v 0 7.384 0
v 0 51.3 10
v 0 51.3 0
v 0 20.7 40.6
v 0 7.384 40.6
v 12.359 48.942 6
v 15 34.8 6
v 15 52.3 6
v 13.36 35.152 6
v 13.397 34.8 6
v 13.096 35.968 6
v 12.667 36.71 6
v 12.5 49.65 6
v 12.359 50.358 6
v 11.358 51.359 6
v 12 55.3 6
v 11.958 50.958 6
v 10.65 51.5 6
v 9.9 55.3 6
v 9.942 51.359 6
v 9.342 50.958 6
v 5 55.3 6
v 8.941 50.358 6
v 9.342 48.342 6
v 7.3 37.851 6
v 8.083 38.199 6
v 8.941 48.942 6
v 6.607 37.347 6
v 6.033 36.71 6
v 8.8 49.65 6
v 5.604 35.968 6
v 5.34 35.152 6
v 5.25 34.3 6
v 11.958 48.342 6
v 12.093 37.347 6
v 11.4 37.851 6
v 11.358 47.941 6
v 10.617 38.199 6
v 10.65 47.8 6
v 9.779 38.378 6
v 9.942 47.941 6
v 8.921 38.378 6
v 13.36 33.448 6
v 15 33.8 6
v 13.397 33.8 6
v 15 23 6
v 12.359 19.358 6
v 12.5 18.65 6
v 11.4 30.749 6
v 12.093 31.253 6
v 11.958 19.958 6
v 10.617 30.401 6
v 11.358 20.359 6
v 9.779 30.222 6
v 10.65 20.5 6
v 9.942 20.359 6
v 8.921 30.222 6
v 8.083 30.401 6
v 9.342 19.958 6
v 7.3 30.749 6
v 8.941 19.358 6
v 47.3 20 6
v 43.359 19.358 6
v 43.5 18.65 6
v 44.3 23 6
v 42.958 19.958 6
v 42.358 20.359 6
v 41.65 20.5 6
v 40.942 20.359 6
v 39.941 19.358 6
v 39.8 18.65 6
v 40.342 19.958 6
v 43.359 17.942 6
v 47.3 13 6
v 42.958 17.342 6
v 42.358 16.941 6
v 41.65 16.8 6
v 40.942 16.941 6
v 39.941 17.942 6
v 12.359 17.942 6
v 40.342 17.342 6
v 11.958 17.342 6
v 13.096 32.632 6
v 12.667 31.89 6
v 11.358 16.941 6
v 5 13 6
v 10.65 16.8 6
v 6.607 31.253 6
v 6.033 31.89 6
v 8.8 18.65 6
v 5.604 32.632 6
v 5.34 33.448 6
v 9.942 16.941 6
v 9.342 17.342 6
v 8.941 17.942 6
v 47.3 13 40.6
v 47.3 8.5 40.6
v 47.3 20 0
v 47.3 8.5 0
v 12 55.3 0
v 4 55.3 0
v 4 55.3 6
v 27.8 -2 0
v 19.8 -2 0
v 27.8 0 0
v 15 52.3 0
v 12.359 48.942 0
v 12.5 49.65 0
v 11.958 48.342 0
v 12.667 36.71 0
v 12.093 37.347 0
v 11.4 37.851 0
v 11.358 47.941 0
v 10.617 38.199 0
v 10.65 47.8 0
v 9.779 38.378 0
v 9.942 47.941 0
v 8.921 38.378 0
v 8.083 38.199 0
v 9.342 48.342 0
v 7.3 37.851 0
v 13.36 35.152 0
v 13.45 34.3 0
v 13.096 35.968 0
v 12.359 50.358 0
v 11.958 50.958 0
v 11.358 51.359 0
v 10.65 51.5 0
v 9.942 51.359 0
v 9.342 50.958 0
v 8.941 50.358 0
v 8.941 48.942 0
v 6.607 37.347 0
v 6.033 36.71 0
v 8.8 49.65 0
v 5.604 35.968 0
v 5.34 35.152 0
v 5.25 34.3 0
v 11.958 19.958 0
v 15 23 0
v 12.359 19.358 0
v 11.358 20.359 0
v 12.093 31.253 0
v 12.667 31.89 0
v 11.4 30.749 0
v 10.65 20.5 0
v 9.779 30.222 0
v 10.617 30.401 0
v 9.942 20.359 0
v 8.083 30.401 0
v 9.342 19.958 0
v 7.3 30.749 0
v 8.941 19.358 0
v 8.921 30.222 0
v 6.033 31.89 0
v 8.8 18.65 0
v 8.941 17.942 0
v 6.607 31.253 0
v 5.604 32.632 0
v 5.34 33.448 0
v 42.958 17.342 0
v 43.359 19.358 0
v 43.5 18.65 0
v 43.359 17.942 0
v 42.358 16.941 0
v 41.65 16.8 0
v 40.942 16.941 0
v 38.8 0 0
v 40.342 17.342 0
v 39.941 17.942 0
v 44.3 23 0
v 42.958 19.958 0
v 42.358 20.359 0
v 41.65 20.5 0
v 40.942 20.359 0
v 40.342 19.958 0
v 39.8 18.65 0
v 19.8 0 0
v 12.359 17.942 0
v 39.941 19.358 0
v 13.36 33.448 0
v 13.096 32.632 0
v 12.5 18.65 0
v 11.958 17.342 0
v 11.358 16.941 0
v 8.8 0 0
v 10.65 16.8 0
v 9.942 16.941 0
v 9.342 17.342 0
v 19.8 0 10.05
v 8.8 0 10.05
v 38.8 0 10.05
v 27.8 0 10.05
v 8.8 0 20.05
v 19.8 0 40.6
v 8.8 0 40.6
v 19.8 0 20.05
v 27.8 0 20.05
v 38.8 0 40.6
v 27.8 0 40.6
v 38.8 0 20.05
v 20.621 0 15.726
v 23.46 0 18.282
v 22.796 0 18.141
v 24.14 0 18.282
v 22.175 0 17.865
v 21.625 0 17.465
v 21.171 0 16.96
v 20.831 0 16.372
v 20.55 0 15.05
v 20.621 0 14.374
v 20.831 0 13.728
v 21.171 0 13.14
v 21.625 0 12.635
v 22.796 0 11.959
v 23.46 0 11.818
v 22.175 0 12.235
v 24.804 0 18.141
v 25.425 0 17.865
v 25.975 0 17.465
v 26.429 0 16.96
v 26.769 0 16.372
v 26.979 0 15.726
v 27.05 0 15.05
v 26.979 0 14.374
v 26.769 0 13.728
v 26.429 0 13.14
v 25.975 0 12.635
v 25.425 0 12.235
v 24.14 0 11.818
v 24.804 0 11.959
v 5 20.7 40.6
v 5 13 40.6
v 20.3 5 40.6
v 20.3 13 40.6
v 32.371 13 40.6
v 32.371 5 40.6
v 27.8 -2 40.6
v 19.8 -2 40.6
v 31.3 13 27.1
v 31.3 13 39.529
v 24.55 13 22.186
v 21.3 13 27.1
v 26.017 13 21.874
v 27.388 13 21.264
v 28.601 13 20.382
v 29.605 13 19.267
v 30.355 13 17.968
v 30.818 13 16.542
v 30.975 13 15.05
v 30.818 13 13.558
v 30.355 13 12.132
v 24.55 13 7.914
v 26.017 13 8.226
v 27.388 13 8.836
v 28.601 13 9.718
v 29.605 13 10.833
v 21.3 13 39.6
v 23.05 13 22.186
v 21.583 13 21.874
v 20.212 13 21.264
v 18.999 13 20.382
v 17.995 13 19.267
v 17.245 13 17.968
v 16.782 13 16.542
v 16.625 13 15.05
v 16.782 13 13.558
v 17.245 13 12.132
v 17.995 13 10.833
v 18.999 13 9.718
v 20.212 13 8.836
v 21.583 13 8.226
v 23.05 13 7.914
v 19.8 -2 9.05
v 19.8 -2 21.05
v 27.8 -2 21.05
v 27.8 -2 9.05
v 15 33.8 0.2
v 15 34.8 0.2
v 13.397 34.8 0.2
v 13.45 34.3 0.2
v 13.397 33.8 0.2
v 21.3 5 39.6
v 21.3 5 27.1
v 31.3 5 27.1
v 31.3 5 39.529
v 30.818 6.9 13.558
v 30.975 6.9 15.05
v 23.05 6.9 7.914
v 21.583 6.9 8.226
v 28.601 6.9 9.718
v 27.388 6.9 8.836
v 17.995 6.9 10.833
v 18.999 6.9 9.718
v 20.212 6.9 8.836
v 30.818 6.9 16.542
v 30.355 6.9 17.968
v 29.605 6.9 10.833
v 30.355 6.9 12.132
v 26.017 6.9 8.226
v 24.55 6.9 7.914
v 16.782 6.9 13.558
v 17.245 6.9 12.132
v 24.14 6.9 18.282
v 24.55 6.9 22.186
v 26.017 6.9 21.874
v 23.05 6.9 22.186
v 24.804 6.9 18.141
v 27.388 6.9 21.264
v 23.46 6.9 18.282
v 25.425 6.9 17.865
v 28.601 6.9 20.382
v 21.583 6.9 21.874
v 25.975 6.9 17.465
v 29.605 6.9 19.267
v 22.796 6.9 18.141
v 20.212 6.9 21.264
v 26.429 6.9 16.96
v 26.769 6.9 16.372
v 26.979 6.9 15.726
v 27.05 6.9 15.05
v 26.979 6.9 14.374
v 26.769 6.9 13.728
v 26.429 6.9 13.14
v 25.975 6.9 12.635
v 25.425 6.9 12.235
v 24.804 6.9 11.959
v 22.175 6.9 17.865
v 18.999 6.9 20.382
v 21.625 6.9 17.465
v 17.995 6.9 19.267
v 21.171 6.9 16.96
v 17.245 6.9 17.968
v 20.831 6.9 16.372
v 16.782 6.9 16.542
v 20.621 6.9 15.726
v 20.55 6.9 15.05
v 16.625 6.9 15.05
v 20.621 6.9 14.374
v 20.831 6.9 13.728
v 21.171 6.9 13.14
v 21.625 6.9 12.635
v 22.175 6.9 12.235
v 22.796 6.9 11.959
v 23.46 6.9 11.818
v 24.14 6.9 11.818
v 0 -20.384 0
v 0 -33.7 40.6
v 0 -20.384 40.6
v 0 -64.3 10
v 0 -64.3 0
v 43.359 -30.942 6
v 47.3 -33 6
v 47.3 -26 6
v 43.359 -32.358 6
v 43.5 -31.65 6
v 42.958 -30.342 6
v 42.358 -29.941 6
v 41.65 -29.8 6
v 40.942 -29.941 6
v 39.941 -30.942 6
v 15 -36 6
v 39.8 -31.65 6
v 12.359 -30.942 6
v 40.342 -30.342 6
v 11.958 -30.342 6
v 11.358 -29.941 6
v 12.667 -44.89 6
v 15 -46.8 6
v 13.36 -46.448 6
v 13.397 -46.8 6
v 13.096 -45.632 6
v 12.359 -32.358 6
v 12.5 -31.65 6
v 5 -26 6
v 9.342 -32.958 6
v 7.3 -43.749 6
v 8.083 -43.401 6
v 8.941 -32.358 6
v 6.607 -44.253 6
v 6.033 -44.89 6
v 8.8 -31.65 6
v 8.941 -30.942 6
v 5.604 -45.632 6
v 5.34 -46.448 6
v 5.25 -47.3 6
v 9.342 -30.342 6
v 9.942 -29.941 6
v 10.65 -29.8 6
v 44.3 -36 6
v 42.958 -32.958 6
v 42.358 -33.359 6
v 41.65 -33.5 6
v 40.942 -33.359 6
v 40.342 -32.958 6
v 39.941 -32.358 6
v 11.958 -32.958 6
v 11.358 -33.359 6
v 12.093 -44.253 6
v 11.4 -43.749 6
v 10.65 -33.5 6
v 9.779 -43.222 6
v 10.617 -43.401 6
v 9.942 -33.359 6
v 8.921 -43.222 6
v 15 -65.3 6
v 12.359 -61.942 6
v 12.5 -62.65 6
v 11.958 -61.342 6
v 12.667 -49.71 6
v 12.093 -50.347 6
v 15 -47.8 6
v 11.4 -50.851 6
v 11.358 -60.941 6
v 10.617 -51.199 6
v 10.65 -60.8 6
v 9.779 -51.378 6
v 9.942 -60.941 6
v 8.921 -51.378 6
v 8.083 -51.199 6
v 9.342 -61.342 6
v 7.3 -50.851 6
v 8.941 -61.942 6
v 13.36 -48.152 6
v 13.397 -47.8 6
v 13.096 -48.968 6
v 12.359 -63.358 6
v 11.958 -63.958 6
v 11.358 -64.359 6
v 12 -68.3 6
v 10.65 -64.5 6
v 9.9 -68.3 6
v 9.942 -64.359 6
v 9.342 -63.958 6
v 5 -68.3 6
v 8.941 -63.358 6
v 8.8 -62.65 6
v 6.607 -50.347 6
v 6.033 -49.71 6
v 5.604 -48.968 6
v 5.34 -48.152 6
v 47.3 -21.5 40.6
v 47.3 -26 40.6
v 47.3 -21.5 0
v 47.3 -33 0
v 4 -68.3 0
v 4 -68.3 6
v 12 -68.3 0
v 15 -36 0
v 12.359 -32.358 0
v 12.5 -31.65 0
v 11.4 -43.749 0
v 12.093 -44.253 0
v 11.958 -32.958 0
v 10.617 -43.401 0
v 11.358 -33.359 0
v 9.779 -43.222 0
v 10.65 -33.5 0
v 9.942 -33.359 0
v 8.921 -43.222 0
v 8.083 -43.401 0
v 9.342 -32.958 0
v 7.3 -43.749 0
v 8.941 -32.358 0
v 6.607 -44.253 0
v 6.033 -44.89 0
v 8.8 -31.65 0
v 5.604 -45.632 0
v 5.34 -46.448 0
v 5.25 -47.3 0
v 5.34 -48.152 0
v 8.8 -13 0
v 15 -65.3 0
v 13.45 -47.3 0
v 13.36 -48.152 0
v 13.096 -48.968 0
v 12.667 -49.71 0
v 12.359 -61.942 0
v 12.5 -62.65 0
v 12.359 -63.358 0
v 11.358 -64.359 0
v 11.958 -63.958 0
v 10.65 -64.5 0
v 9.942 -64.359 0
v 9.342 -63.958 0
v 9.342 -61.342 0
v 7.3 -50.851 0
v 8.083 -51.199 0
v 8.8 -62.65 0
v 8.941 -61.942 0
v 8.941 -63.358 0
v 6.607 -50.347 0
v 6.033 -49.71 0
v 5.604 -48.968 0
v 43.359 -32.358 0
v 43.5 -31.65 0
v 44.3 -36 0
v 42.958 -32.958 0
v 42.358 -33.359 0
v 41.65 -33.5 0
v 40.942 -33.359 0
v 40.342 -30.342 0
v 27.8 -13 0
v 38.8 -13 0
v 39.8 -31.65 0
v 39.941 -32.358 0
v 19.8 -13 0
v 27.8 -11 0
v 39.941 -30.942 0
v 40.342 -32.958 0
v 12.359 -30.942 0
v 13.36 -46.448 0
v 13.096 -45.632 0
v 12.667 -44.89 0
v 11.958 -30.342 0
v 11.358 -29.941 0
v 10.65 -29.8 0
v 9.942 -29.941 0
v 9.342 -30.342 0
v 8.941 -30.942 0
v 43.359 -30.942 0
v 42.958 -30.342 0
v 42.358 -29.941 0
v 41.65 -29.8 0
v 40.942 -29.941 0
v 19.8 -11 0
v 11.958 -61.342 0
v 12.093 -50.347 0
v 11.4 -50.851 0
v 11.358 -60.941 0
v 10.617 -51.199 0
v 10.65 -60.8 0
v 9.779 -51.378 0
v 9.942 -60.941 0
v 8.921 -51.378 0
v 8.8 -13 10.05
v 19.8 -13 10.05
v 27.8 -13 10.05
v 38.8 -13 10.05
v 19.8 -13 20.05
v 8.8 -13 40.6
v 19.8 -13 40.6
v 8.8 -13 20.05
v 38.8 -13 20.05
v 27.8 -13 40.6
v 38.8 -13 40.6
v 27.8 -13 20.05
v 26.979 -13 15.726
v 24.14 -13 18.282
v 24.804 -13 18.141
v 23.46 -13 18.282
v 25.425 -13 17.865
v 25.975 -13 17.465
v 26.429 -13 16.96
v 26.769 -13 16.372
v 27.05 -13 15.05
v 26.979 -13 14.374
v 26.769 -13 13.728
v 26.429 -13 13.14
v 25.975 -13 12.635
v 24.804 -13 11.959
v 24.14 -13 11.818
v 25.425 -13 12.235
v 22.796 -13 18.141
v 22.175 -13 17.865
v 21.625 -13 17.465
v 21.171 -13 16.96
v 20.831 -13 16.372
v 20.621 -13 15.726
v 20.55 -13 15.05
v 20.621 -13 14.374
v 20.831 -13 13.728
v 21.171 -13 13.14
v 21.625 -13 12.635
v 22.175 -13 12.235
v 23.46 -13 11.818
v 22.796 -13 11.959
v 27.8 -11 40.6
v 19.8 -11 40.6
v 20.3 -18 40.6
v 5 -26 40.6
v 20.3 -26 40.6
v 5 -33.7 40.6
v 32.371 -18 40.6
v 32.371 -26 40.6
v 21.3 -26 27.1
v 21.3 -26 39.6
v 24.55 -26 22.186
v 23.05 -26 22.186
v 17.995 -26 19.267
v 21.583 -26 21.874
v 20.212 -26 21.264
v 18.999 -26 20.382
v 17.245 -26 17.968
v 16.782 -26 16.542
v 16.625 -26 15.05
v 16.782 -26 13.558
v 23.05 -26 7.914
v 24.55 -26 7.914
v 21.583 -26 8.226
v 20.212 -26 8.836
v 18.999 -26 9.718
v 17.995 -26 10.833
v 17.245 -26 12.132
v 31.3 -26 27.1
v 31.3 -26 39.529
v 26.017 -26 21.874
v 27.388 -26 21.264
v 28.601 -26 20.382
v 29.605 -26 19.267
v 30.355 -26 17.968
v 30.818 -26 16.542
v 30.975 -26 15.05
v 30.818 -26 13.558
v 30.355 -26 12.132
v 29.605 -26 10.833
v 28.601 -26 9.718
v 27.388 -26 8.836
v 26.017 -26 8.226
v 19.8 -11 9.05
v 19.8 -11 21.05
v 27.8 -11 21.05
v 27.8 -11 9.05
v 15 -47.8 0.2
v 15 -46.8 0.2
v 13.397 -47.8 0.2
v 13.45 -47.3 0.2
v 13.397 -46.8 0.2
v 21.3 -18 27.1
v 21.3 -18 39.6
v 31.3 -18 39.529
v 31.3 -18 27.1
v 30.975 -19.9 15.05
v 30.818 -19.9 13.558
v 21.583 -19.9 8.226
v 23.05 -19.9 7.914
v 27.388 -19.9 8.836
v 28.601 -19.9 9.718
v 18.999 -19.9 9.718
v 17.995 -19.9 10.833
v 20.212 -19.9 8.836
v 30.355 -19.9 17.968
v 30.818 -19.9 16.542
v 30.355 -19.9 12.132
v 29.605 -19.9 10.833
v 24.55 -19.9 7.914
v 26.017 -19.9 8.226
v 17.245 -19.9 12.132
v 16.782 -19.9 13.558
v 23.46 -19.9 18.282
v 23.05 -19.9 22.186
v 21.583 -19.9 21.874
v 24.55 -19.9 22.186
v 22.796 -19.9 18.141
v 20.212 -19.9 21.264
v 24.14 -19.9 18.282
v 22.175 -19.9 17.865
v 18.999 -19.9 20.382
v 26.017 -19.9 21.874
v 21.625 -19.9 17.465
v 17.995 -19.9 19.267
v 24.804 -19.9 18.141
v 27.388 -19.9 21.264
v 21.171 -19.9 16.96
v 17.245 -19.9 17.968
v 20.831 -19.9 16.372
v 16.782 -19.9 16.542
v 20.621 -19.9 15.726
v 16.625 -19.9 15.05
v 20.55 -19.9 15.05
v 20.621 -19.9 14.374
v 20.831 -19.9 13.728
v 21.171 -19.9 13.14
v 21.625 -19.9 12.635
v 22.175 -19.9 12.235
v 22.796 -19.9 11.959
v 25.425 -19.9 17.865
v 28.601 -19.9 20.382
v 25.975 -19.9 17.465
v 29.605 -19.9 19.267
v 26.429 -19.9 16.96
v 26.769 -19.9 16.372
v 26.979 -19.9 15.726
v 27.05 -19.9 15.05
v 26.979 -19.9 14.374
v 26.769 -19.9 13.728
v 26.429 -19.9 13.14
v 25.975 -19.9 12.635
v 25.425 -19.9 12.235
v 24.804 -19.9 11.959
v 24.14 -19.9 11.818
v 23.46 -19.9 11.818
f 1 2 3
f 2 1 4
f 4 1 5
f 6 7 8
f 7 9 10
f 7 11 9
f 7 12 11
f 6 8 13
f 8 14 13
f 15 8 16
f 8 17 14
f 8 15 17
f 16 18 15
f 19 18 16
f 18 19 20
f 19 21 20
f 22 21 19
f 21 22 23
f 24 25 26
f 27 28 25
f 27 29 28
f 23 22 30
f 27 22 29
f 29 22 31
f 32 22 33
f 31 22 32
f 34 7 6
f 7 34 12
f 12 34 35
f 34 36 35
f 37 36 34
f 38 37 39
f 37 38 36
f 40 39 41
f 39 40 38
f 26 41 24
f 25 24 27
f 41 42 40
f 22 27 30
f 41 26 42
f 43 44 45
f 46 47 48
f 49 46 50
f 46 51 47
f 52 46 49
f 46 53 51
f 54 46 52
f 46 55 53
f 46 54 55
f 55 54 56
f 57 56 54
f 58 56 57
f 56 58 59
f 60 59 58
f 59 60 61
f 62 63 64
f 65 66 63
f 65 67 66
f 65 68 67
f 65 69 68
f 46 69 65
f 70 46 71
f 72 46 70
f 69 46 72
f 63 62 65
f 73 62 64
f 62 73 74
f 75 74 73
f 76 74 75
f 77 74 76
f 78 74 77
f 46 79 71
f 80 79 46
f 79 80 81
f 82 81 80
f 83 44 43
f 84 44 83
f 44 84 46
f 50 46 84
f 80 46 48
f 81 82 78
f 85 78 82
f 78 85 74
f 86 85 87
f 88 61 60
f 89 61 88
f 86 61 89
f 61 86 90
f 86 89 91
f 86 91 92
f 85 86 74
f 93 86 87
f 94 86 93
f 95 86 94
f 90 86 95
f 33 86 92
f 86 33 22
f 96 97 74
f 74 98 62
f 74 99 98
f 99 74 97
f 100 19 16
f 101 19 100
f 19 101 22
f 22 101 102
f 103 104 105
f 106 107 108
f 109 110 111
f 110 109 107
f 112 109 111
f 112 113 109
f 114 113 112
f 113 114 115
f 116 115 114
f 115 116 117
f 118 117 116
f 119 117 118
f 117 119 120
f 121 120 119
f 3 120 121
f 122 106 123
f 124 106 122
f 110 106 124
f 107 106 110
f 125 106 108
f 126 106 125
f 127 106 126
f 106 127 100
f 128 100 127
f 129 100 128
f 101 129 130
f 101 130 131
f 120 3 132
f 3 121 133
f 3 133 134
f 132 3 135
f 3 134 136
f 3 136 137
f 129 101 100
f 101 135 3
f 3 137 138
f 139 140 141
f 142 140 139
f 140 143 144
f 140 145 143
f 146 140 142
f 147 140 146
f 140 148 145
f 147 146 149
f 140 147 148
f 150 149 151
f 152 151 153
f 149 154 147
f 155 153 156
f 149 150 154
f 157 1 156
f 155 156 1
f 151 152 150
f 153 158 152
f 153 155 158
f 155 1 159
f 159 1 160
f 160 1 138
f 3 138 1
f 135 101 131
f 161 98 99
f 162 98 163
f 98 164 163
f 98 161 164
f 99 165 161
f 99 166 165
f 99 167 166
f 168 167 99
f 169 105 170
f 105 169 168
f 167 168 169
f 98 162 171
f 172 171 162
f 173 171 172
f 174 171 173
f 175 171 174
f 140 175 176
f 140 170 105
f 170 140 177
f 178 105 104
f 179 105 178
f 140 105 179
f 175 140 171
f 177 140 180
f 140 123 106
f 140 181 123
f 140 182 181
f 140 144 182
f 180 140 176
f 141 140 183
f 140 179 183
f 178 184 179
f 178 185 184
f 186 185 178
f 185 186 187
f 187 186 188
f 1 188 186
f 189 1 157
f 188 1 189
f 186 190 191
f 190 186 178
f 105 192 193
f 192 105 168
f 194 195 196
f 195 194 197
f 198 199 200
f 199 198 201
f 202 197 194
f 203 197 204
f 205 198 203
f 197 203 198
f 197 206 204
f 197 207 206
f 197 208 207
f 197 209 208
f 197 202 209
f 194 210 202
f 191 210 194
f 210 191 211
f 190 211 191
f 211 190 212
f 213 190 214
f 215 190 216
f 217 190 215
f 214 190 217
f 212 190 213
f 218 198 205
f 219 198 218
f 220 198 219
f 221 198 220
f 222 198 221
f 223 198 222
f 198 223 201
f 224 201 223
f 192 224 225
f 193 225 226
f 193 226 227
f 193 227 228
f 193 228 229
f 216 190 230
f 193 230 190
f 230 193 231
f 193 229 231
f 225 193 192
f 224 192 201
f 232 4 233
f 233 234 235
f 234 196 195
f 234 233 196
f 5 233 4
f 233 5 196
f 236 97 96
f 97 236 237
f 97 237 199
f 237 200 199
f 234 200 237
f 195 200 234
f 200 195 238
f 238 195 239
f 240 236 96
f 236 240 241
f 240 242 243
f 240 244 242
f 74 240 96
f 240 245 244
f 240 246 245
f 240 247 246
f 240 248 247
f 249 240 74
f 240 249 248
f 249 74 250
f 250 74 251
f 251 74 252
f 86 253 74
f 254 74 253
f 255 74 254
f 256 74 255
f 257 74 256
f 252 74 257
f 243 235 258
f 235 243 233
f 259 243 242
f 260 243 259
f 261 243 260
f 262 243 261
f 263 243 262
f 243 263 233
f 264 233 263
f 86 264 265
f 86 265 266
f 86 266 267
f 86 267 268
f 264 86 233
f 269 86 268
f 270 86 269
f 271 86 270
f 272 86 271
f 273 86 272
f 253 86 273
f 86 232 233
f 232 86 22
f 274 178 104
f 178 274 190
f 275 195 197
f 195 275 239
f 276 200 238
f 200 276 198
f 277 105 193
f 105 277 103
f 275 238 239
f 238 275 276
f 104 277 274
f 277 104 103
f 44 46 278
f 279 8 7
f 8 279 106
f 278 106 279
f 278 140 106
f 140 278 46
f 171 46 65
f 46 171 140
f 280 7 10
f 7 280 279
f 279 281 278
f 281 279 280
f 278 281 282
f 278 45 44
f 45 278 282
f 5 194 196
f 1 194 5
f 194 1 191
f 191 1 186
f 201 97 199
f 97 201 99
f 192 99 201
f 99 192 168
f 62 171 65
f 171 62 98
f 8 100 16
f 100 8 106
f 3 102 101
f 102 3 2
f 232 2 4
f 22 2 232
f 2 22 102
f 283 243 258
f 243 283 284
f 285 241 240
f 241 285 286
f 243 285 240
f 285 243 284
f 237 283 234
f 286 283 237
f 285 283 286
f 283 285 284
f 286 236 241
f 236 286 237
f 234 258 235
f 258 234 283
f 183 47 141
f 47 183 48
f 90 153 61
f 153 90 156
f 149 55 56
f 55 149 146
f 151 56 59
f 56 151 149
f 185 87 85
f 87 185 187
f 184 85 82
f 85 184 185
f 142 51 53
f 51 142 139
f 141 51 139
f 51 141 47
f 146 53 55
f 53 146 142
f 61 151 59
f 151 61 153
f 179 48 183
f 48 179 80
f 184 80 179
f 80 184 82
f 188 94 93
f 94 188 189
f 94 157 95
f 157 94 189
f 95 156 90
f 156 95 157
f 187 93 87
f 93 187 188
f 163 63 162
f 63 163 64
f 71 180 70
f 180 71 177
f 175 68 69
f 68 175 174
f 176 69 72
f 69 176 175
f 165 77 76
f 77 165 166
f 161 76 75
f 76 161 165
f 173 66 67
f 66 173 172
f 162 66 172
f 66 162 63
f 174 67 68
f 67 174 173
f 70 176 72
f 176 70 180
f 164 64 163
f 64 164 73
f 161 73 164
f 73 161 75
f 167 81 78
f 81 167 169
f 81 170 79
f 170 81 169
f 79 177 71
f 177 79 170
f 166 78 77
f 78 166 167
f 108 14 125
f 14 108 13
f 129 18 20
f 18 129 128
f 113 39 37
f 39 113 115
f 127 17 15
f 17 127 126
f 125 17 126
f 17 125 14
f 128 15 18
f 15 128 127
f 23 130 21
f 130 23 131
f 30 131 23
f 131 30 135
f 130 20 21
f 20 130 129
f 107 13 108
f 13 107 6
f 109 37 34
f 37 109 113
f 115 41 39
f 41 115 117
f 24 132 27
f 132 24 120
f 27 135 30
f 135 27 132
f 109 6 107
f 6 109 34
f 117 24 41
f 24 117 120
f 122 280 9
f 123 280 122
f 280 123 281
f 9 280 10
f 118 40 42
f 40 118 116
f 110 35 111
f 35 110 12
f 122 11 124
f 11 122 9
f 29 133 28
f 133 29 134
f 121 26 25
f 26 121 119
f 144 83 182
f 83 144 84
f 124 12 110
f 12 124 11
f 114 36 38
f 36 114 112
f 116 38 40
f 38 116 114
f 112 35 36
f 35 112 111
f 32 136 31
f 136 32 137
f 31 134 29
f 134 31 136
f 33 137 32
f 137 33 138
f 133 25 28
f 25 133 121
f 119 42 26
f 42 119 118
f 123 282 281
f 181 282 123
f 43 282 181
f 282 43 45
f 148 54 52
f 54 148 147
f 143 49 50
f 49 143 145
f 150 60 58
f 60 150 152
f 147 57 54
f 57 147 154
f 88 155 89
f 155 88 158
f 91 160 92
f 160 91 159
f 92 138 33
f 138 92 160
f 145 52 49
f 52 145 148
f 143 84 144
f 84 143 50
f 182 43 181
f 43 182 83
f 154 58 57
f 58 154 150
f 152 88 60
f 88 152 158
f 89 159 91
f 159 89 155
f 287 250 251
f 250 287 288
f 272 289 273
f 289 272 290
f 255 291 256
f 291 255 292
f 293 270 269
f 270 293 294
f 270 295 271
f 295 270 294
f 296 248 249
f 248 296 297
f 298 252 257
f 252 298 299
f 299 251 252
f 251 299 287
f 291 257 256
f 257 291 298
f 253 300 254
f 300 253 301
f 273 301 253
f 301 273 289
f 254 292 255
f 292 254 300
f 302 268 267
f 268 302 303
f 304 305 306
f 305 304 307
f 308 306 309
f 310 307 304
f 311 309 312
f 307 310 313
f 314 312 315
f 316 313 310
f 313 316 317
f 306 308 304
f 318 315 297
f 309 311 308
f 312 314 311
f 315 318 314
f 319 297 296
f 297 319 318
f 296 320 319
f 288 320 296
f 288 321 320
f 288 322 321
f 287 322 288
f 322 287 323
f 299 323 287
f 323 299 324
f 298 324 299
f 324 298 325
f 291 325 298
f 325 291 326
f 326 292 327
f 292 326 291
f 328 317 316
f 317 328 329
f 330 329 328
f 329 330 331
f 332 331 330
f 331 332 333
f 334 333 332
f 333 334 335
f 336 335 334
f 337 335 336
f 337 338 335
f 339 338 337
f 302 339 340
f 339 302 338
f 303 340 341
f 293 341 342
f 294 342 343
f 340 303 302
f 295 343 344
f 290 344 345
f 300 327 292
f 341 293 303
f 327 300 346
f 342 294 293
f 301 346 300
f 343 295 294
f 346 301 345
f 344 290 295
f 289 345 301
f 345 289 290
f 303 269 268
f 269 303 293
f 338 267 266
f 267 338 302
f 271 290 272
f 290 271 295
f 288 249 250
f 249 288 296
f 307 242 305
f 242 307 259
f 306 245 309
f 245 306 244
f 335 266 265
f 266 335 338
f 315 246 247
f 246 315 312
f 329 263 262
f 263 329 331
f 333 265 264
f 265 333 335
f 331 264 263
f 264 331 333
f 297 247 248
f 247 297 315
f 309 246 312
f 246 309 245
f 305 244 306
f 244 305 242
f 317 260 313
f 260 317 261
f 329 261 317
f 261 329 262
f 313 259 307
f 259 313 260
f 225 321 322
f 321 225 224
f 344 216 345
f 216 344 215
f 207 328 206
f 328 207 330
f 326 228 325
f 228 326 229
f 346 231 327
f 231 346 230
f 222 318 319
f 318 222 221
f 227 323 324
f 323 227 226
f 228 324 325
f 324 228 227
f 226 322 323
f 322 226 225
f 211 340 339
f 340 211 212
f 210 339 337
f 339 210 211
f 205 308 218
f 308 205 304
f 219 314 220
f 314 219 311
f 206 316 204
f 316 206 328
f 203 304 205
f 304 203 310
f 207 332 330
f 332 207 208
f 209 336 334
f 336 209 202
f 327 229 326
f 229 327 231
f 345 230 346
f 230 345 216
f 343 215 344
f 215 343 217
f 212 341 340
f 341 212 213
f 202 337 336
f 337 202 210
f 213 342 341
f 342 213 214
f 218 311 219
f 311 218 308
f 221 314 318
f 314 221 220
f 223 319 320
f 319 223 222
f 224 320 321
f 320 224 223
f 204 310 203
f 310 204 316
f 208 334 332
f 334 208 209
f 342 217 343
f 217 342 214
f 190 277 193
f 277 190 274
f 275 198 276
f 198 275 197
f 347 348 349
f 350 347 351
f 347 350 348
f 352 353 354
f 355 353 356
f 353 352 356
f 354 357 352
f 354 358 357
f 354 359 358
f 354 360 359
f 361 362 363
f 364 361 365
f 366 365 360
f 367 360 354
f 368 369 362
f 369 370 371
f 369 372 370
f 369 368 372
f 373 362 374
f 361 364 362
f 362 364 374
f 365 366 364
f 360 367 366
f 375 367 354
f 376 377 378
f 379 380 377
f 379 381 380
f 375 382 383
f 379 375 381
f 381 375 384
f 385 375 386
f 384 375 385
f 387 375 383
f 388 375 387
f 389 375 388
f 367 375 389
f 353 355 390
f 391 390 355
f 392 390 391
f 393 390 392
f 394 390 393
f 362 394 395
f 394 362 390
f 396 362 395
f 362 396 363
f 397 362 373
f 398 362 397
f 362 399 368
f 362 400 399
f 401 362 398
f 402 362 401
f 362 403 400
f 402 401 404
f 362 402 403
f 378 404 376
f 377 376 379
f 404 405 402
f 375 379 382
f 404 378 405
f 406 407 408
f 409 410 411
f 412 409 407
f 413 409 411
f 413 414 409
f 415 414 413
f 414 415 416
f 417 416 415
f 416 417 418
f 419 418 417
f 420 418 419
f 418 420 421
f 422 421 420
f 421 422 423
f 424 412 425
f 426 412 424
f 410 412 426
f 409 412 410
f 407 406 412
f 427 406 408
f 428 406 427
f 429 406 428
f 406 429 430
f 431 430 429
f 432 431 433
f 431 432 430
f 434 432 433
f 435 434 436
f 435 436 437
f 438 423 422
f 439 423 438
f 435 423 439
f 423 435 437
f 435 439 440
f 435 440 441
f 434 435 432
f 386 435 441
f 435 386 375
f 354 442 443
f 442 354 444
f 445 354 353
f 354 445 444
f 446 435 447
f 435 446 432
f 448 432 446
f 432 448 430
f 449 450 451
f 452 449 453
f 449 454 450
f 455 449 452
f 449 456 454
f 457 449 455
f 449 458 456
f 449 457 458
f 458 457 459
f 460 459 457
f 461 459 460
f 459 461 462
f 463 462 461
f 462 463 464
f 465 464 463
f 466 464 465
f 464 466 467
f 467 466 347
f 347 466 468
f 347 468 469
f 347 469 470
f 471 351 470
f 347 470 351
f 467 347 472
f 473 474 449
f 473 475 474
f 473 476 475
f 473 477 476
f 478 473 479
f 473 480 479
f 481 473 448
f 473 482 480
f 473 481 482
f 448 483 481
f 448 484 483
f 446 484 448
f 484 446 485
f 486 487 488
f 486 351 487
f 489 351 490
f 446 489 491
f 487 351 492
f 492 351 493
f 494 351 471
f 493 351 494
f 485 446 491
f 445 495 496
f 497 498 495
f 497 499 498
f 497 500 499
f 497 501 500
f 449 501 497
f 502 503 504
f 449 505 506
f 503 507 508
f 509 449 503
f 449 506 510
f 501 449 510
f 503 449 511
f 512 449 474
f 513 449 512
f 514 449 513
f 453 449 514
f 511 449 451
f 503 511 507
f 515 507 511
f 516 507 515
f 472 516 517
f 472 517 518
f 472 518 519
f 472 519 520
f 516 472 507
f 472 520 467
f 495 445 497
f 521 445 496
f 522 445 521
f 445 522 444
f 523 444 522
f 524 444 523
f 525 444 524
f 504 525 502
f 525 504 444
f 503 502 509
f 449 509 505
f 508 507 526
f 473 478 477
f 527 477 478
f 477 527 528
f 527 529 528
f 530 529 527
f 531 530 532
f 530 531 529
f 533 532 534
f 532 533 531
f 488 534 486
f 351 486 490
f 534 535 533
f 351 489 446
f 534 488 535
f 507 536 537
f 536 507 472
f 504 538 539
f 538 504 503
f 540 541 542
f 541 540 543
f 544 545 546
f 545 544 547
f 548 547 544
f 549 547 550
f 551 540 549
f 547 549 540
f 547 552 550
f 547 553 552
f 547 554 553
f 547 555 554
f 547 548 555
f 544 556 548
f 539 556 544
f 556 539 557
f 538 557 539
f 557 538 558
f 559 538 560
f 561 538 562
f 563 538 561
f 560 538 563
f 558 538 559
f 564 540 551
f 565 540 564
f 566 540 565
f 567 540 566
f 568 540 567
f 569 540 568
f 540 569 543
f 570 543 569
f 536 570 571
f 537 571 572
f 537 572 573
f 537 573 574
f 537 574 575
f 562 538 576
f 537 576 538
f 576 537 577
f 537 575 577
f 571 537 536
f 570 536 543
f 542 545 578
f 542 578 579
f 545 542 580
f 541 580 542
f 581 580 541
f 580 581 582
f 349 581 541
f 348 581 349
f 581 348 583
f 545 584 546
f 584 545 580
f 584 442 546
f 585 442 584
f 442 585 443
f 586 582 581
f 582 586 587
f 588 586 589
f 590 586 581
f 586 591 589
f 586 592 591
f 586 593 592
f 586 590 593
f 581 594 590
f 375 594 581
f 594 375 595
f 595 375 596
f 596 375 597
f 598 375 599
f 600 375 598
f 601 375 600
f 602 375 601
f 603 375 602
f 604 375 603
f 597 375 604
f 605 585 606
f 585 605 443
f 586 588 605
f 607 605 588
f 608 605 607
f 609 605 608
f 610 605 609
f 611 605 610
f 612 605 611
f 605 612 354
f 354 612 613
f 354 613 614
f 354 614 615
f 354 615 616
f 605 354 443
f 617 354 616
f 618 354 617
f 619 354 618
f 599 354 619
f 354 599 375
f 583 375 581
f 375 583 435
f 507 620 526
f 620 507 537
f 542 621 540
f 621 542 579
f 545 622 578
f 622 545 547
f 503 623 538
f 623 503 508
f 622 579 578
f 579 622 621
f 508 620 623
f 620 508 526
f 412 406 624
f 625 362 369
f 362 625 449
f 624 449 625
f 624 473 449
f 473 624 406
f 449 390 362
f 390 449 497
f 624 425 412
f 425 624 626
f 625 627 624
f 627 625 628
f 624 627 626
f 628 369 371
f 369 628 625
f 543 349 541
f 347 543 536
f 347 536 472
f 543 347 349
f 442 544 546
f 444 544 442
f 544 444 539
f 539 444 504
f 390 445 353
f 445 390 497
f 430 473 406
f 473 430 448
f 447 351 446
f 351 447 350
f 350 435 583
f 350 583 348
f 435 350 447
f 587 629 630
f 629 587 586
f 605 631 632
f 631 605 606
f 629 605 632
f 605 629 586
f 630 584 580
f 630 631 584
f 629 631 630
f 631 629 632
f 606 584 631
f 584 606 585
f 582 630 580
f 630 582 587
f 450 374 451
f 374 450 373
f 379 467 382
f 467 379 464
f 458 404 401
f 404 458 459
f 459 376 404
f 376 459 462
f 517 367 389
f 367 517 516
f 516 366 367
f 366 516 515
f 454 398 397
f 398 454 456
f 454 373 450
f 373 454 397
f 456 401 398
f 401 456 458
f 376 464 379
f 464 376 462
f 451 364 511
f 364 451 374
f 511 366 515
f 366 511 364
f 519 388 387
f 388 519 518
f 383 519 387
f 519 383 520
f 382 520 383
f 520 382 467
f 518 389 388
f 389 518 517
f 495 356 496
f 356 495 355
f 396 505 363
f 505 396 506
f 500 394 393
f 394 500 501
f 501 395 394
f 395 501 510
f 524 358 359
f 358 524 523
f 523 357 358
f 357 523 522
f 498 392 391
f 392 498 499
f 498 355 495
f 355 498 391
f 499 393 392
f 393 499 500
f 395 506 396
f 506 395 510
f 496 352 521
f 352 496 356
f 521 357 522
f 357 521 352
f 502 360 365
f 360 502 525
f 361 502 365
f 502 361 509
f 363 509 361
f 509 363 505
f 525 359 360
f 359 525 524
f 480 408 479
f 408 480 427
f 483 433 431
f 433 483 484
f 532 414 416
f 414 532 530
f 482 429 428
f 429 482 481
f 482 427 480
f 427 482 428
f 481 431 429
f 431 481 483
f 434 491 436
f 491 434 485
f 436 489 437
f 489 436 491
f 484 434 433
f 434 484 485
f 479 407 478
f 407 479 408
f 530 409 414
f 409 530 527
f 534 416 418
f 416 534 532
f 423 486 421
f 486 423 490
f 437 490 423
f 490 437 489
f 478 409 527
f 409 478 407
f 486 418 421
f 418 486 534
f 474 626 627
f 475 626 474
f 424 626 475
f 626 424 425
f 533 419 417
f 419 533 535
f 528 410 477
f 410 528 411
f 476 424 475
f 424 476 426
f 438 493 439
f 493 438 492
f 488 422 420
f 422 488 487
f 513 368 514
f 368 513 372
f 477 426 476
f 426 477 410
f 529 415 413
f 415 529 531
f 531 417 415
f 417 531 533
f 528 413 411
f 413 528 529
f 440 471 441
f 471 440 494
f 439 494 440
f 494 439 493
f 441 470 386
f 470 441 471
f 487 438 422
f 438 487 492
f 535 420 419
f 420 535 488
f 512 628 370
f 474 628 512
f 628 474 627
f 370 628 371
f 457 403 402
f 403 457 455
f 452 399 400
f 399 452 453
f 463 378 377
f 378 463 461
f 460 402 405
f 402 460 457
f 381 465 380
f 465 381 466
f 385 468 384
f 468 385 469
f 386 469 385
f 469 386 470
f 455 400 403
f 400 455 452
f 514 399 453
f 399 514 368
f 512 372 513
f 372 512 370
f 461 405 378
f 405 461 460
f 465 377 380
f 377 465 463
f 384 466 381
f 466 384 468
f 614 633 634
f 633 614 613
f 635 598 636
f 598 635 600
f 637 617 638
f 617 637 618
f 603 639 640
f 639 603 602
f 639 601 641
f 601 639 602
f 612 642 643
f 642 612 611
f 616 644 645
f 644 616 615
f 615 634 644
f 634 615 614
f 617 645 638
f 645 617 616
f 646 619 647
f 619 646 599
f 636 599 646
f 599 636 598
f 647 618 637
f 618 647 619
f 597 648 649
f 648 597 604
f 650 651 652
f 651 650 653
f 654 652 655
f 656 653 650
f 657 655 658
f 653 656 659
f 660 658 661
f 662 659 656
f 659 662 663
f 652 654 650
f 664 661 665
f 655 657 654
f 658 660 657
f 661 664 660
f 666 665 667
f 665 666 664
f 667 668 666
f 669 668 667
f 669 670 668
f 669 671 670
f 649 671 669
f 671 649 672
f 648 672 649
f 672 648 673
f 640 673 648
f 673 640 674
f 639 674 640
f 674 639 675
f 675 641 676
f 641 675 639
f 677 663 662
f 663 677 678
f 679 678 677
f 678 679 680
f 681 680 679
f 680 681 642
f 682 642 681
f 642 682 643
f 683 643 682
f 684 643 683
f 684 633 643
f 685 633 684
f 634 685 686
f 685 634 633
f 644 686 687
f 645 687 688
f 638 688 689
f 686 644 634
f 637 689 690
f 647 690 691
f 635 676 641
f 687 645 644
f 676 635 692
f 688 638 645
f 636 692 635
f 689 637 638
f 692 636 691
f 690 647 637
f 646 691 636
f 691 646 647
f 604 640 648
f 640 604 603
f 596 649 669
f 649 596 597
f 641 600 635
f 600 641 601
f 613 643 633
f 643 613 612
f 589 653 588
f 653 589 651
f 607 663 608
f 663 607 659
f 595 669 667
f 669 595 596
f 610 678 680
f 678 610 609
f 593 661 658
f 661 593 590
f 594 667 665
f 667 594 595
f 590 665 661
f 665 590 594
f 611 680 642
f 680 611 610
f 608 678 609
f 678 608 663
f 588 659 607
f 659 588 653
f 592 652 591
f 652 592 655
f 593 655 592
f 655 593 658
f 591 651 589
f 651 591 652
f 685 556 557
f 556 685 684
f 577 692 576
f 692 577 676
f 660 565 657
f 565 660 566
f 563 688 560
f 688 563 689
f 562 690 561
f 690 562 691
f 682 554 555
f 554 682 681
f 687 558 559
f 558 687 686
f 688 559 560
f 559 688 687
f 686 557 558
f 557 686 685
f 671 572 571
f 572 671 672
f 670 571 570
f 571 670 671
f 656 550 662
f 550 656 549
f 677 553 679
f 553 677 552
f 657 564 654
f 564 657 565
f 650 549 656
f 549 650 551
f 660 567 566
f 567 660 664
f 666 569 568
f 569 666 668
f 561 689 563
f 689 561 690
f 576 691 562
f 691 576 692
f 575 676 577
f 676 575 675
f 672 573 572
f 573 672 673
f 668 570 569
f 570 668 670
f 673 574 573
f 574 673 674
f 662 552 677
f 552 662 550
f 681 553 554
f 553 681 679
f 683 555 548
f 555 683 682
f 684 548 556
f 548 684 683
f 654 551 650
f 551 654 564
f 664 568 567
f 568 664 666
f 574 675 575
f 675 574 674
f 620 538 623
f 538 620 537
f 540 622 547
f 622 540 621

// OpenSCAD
// file: ../configuration.scad
// Layer high for the printing [mm]
layer_height = 0.20; //Slic3r->Print Settings->Layers and perimeters->Layer height

// Spare for the screws heads [mm]
spare = 0.75;
// M6 screw diameter [mm]
M6_head_diameter = 13.6+spare;
//M6_head_diameter = 10.6+spare;
//M6_head_diameter = 12+spare;

// M6 head high (for hiding it) [mm]
//M6_head_height = 4;
M6_head_height = 3.6;
//M6_head_height = 4.5;

// Screws and rods diameters
M8_smooth_rod_diameter = 8.3;
M8_smooth_rod_diameter_catch = 8.4;
// Prumer 8mm tyce
rod_8mm_d = 8.2; //pro dil z-top
M6_diameter = 6.6;
M6_dia=M6_diameter; //pro dil z-top
M6_diamater_horizontal = 6.5;
M3_diameter = 3.7;
M3_diameter_horizontal = 3.5;

//matice trapézové tyče
TRAP_diameter_externa=22; //průmer vnější


// Nuts diameters
M3_nut_diameter = 7.0;
M3_nut_diameter_horizontal = 6.7;

// ALU profile parameters
ALU_cut_width = 7.9;
ALU_cut_width_horizontal = 7.7;

// Sirka matky do profilu (pokud neni pouzita, tak 0)
profile_nut_width = 10;
//profile_nut_width = 0; //pro z-top

// Motors length/depth (for axes Z and Y)
//SX17-1003LQFE (recommended for the Z axis)
motor_length = 29.5;
//SX17-1003 (recommended for the Z axis)
//motor_length = 34;
//SX17-1005
//motor_length = 40;
//SX17-0905 - this motor is too high - the Z end stop holder has to be adjusted
//motor_length = 48;

// Extrusion width [mm]
extrusion_width = 0.66; //Slic3r->Print Settings->Advanced->Default extrusion width

/// Belt type ******************************************************

// GT2
//belt_tooth_distance = 2;
//belt_tooth_ratio = 0.5;
//belt_tooth_height = 1.4;
//belt_thickness = 2.3;


// T2.5
belt_tooth_distance = 2.5;
belt_tooth_ratio = 0.68;

// Z screw......



// Tloustka rohovych spojek
// 5 mm => sroub M6x14 s podlozkou
// 3 mm => sroub M6x12 s podlozkou
coupler_thickness = 3;
// main file
// RebeliX
//
// z bottom
// GNU GPL v3
// Martin Neruda <neruda@reprap4u.cz>
// http://www.reprap4u.cz
// Inspired by Rebel II and Prusa i3


include <../configuration.scad>

// Space between stepper and the part (less vibrations)
space = 0.6;

height = motor_length + space;

// Same value as in z_top (minimum 13)
base_offset = 13;

// Stepper side offset
motor_offset = 0;

module z_bottom_base(){
 translate([0,0,0]) cube([42.3+5,42.3+base_offset,6]);
 translate([0,0,0]) cube([42.3+5,base_offset,height<=34+space ? 34+space+6 : height+6]);
 translate([0,0,0]) cube([5,42.3+base_offset,(height>=34+space)||(height<=34+space) ? 34+space+6 : height+6]);
 translate([2.5+21.3-4+motor_offset,-2,0]) cube([8,3,height<=34+space ? 34+space+6 : height+6]);
}

module z_bottom_cuts(){
 translate([15,10+base_offset,-0.1]) rotate([0,0,0]) cube([50,50,10]);
 translate([7.5,21.3+base_offset-0.5,layer_height]) cube([10,1,10]);

 translate([2.5+21.3-15+motor_offset,0,-0.1]) rotate([0,0,-220]) cube([30,15,height<=34+space ? 34+space+8 : height+8]);
 translate([2.5+21.3+15+motor_offset,0,-0.1]) rotate([0,0,-45]) cube([15,15,height<=34+space ? 34+space+8 : height+8]);

 translate([42.3+6,6+base_offset,-0.1]) rotate([0,0,45]) cube([10,10,height+8]);
 translate([15,42.3+base_offset-3,-0.1]) rotate([0,0,45]) cube([10,10,height+8]);
 translate([-5,42.3+base_offset-9,-0.1]) rotate([0,0,45]) cube([20,10,height+8]);

 translate([-0.1,42.3+base_offset,6]) rotate([45,0,0]) cube([10,70,50]);

 // Stepper wires hole
 //translate([5+21.3-5,5,height+6-7]) cube([10,30,30]);
 translate([5+21.3-5,5,height+6-9]) cube([10,20,30]);
 translate([5+21.3,5,height<=34+space ? 34+space+7 : height+7]) rotate([0,45,0]) cube([5,30,5]);
 translate([5+21.3-7,5,height<=34+space ? 34+space+7 : height+7]) rotate([0,45,0]) cube([5,30,5]);
}

module z_bottom_holes(){

 // M8 rod hole
 translate([5+4.35,21.3+base_offset,-0.1]) rotate([0,0,0]) cylinder(r = rod_8mm_d/2, h = 7, $fn = 30);

 // Stepper hole
 translate([5+5.65,base_offset+5.65,-0.1]){
	translate([0,0,0]) cylinder(h = 20, r=M3_diameter/2, $fn=16);
	translate([31,0,0]) cylinder(h = 20, r=M3_diameter/2, $fn=16);
	translate([0,31,0]) cylinder(h = 20, r=M3_diameter/2, $fn=16);
 }


 // ALU mount holes
 translate([2.5+21.3+motor_offset,base_offset-M6_head_height-2.5,height/2]) rotate([-90,0,0]) cylinder(r = M6_head_diameter/2, h = 20, $fn = 30);
 translate([2.5+21.3+motor_offset,-3,height/2]) rotate([-90,0,0]) cylinder(r = M6_diamater_horizontal/2, h = 20, $fn = 30);

 // ALU mount holes
 hull(){
     translate([-6, -12 ,height/2-5]) cube([100, 12, 10]);
     translate([-6, -14 ,height/2-6]) cube([100, 12, 12]);
 }
}

// Whole part
module z_bottom(){
 difference(){
  z_bottom_base();
  z_bottom_cuts();
  z_bottom_holes();
 }
 translate([0,-13,0]) mirror([0,1,0]) difference(){
  z_bottom_base();
  z_bottom_cuts();
  z_bottom_holes();
 }
}

z_bottom();
